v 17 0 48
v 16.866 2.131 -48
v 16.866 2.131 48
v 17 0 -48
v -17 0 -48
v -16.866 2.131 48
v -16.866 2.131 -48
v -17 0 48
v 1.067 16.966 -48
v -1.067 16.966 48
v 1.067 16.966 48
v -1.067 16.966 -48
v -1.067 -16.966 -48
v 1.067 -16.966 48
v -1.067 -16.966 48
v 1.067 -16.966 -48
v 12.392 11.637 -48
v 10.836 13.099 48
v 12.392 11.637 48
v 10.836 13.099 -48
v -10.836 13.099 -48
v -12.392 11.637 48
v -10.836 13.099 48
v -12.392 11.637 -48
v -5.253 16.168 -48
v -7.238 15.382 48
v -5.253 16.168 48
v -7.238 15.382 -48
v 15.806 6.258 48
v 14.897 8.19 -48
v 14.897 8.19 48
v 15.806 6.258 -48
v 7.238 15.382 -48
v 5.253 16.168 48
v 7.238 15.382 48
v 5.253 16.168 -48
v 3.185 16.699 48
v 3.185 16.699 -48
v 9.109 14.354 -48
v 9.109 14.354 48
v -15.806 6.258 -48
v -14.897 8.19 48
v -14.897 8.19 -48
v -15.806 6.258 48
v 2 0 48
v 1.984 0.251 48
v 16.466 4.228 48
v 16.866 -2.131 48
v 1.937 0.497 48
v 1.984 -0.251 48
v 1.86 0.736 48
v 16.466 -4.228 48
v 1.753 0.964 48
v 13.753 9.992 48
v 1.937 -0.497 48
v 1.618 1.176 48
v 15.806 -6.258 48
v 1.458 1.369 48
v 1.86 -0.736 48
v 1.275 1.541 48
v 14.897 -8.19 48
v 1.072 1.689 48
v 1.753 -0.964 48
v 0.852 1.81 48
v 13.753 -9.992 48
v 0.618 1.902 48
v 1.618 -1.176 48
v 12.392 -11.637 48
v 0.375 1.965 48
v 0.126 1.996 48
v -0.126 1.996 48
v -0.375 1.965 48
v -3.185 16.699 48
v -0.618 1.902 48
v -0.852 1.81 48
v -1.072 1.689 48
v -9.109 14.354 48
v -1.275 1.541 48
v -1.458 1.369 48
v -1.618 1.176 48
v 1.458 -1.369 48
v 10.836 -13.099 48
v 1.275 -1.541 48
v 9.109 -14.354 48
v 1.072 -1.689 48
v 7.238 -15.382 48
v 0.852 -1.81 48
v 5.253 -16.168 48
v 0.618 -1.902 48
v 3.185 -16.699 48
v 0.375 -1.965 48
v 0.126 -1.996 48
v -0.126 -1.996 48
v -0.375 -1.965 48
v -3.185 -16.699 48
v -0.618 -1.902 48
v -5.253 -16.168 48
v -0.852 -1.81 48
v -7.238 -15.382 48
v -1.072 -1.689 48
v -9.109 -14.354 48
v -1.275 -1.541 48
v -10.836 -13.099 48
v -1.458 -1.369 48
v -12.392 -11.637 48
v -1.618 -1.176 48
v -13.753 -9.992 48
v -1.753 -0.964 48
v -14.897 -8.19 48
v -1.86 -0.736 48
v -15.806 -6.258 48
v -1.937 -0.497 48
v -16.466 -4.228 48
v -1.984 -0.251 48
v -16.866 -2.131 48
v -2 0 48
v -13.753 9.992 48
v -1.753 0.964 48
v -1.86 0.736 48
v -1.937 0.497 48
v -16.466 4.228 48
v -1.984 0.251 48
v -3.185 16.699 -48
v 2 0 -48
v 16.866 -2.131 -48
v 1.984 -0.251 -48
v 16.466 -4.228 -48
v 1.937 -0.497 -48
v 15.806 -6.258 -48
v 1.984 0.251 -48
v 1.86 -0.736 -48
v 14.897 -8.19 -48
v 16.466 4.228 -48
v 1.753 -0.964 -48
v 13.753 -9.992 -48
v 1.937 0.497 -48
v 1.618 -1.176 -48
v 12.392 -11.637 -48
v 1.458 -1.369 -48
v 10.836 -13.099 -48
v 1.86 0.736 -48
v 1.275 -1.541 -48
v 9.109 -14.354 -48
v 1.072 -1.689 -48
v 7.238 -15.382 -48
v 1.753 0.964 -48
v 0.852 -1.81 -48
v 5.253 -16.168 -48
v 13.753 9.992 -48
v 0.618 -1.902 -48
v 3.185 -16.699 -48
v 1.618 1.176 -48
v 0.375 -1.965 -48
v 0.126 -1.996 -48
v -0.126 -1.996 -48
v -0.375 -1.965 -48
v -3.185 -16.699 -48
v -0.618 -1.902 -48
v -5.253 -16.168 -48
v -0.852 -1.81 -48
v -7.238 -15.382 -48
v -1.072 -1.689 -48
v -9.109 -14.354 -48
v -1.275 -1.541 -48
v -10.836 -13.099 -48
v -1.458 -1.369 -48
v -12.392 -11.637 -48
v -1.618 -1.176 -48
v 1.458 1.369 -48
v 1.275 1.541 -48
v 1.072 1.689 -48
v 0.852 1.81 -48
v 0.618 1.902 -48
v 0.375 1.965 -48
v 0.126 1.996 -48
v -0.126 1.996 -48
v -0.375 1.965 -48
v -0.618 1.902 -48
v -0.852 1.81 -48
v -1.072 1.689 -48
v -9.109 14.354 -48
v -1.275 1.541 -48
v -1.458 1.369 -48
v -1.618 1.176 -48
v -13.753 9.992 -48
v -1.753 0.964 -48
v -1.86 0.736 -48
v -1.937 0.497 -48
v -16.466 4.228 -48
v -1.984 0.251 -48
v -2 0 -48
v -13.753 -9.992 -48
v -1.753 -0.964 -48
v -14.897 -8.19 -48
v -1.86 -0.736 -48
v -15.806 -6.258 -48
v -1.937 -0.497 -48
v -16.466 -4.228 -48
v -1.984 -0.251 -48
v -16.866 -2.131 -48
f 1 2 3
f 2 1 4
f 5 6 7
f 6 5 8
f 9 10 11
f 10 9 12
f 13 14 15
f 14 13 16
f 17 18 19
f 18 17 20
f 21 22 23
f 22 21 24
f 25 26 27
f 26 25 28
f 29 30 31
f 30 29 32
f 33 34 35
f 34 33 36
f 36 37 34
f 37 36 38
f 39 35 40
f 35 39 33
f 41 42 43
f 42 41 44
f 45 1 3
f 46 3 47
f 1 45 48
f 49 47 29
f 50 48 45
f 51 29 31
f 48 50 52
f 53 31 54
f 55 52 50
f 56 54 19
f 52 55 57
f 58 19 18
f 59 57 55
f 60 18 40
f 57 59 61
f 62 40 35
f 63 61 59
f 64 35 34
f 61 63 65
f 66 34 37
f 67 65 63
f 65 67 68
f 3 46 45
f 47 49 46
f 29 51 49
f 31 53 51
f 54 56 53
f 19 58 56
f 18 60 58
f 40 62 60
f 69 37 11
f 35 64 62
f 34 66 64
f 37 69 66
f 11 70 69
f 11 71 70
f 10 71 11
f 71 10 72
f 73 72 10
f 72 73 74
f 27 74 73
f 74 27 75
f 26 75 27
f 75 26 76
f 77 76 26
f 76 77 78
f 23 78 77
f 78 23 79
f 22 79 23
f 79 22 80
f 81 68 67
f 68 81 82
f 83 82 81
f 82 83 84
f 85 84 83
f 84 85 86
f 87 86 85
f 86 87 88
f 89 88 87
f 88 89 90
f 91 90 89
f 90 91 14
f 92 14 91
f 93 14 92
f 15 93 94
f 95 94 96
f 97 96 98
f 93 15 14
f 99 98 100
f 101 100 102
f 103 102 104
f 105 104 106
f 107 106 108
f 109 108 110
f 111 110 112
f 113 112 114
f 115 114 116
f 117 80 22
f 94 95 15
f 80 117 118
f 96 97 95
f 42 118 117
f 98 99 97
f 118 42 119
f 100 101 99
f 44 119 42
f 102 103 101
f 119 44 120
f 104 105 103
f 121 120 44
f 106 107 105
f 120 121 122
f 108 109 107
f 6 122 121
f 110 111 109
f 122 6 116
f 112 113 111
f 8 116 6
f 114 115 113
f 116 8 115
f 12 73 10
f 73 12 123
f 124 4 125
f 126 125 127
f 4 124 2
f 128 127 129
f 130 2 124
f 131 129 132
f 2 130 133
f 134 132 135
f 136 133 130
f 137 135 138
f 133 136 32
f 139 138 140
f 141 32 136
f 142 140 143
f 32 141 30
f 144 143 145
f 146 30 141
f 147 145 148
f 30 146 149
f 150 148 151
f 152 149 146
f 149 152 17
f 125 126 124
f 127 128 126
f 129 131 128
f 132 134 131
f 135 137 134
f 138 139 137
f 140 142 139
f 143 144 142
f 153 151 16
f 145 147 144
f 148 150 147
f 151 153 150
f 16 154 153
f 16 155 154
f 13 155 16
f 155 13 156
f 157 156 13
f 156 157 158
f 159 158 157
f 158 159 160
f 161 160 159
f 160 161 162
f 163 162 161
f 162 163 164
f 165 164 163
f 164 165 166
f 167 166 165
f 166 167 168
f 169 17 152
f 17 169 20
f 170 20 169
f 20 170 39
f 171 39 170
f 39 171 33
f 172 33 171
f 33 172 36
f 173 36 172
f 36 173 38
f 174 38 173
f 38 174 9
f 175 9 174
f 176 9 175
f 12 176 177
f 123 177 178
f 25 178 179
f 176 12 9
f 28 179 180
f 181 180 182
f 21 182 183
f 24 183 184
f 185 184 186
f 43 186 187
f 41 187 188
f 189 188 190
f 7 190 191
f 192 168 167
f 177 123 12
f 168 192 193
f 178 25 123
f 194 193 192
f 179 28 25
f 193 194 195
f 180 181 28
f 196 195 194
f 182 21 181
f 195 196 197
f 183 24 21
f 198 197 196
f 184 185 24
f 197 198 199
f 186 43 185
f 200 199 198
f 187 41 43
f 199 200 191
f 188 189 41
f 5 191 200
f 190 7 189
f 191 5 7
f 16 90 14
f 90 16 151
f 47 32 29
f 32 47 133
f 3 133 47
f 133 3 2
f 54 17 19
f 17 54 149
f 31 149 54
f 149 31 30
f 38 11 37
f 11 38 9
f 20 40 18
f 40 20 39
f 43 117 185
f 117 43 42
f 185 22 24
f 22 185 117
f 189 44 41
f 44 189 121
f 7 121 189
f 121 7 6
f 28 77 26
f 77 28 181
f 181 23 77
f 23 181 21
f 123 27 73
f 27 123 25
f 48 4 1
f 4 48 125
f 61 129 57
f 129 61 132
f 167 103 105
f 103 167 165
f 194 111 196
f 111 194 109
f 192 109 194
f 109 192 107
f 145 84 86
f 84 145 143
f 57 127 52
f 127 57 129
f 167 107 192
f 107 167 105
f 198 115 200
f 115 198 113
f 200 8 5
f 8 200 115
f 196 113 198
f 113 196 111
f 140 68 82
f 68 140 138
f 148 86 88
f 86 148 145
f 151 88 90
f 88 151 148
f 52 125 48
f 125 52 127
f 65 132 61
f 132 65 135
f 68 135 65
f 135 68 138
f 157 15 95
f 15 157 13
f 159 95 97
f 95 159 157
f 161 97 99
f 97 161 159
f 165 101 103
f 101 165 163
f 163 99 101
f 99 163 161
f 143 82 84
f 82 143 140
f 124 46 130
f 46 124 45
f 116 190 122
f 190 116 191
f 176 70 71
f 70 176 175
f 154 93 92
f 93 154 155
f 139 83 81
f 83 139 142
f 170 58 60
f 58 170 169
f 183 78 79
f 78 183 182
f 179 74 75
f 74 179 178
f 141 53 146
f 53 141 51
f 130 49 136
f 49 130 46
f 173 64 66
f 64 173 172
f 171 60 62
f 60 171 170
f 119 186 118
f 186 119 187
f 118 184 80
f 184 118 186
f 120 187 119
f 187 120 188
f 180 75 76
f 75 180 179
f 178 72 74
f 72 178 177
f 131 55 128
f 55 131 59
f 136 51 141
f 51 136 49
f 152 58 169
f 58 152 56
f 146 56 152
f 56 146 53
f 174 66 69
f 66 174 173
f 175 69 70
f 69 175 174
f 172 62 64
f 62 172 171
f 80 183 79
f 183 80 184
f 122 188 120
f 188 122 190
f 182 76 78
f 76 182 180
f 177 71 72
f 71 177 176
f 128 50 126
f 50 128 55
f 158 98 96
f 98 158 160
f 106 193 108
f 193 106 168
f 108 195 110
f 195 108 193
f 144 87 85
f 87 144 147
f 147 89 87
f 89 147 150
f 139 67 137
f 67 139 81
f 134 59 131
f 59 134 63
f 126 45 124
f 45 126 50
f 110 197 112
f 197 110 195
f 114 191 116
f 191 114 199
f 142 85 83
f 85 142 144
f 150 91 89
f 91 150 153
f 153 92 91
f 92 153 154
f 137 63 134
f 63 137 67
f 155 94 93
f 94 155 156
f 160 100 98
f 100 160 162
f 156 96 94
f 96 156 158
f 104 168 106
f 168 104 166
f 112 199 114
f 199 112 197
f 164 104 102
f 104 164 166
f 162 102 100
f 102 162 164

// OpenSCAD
$fn = 50;


difference() {
	union() {
		translate(v = [0, 0, -48.0000000000]) {
			cylinder(h = 96, r = 17.0000000000);
		}
	}
	union() {
		translate(v = [0, 0, -100.0000000000]) {
			cylinder(h = 200, r = 2.0000000000);
		}
	}
}
